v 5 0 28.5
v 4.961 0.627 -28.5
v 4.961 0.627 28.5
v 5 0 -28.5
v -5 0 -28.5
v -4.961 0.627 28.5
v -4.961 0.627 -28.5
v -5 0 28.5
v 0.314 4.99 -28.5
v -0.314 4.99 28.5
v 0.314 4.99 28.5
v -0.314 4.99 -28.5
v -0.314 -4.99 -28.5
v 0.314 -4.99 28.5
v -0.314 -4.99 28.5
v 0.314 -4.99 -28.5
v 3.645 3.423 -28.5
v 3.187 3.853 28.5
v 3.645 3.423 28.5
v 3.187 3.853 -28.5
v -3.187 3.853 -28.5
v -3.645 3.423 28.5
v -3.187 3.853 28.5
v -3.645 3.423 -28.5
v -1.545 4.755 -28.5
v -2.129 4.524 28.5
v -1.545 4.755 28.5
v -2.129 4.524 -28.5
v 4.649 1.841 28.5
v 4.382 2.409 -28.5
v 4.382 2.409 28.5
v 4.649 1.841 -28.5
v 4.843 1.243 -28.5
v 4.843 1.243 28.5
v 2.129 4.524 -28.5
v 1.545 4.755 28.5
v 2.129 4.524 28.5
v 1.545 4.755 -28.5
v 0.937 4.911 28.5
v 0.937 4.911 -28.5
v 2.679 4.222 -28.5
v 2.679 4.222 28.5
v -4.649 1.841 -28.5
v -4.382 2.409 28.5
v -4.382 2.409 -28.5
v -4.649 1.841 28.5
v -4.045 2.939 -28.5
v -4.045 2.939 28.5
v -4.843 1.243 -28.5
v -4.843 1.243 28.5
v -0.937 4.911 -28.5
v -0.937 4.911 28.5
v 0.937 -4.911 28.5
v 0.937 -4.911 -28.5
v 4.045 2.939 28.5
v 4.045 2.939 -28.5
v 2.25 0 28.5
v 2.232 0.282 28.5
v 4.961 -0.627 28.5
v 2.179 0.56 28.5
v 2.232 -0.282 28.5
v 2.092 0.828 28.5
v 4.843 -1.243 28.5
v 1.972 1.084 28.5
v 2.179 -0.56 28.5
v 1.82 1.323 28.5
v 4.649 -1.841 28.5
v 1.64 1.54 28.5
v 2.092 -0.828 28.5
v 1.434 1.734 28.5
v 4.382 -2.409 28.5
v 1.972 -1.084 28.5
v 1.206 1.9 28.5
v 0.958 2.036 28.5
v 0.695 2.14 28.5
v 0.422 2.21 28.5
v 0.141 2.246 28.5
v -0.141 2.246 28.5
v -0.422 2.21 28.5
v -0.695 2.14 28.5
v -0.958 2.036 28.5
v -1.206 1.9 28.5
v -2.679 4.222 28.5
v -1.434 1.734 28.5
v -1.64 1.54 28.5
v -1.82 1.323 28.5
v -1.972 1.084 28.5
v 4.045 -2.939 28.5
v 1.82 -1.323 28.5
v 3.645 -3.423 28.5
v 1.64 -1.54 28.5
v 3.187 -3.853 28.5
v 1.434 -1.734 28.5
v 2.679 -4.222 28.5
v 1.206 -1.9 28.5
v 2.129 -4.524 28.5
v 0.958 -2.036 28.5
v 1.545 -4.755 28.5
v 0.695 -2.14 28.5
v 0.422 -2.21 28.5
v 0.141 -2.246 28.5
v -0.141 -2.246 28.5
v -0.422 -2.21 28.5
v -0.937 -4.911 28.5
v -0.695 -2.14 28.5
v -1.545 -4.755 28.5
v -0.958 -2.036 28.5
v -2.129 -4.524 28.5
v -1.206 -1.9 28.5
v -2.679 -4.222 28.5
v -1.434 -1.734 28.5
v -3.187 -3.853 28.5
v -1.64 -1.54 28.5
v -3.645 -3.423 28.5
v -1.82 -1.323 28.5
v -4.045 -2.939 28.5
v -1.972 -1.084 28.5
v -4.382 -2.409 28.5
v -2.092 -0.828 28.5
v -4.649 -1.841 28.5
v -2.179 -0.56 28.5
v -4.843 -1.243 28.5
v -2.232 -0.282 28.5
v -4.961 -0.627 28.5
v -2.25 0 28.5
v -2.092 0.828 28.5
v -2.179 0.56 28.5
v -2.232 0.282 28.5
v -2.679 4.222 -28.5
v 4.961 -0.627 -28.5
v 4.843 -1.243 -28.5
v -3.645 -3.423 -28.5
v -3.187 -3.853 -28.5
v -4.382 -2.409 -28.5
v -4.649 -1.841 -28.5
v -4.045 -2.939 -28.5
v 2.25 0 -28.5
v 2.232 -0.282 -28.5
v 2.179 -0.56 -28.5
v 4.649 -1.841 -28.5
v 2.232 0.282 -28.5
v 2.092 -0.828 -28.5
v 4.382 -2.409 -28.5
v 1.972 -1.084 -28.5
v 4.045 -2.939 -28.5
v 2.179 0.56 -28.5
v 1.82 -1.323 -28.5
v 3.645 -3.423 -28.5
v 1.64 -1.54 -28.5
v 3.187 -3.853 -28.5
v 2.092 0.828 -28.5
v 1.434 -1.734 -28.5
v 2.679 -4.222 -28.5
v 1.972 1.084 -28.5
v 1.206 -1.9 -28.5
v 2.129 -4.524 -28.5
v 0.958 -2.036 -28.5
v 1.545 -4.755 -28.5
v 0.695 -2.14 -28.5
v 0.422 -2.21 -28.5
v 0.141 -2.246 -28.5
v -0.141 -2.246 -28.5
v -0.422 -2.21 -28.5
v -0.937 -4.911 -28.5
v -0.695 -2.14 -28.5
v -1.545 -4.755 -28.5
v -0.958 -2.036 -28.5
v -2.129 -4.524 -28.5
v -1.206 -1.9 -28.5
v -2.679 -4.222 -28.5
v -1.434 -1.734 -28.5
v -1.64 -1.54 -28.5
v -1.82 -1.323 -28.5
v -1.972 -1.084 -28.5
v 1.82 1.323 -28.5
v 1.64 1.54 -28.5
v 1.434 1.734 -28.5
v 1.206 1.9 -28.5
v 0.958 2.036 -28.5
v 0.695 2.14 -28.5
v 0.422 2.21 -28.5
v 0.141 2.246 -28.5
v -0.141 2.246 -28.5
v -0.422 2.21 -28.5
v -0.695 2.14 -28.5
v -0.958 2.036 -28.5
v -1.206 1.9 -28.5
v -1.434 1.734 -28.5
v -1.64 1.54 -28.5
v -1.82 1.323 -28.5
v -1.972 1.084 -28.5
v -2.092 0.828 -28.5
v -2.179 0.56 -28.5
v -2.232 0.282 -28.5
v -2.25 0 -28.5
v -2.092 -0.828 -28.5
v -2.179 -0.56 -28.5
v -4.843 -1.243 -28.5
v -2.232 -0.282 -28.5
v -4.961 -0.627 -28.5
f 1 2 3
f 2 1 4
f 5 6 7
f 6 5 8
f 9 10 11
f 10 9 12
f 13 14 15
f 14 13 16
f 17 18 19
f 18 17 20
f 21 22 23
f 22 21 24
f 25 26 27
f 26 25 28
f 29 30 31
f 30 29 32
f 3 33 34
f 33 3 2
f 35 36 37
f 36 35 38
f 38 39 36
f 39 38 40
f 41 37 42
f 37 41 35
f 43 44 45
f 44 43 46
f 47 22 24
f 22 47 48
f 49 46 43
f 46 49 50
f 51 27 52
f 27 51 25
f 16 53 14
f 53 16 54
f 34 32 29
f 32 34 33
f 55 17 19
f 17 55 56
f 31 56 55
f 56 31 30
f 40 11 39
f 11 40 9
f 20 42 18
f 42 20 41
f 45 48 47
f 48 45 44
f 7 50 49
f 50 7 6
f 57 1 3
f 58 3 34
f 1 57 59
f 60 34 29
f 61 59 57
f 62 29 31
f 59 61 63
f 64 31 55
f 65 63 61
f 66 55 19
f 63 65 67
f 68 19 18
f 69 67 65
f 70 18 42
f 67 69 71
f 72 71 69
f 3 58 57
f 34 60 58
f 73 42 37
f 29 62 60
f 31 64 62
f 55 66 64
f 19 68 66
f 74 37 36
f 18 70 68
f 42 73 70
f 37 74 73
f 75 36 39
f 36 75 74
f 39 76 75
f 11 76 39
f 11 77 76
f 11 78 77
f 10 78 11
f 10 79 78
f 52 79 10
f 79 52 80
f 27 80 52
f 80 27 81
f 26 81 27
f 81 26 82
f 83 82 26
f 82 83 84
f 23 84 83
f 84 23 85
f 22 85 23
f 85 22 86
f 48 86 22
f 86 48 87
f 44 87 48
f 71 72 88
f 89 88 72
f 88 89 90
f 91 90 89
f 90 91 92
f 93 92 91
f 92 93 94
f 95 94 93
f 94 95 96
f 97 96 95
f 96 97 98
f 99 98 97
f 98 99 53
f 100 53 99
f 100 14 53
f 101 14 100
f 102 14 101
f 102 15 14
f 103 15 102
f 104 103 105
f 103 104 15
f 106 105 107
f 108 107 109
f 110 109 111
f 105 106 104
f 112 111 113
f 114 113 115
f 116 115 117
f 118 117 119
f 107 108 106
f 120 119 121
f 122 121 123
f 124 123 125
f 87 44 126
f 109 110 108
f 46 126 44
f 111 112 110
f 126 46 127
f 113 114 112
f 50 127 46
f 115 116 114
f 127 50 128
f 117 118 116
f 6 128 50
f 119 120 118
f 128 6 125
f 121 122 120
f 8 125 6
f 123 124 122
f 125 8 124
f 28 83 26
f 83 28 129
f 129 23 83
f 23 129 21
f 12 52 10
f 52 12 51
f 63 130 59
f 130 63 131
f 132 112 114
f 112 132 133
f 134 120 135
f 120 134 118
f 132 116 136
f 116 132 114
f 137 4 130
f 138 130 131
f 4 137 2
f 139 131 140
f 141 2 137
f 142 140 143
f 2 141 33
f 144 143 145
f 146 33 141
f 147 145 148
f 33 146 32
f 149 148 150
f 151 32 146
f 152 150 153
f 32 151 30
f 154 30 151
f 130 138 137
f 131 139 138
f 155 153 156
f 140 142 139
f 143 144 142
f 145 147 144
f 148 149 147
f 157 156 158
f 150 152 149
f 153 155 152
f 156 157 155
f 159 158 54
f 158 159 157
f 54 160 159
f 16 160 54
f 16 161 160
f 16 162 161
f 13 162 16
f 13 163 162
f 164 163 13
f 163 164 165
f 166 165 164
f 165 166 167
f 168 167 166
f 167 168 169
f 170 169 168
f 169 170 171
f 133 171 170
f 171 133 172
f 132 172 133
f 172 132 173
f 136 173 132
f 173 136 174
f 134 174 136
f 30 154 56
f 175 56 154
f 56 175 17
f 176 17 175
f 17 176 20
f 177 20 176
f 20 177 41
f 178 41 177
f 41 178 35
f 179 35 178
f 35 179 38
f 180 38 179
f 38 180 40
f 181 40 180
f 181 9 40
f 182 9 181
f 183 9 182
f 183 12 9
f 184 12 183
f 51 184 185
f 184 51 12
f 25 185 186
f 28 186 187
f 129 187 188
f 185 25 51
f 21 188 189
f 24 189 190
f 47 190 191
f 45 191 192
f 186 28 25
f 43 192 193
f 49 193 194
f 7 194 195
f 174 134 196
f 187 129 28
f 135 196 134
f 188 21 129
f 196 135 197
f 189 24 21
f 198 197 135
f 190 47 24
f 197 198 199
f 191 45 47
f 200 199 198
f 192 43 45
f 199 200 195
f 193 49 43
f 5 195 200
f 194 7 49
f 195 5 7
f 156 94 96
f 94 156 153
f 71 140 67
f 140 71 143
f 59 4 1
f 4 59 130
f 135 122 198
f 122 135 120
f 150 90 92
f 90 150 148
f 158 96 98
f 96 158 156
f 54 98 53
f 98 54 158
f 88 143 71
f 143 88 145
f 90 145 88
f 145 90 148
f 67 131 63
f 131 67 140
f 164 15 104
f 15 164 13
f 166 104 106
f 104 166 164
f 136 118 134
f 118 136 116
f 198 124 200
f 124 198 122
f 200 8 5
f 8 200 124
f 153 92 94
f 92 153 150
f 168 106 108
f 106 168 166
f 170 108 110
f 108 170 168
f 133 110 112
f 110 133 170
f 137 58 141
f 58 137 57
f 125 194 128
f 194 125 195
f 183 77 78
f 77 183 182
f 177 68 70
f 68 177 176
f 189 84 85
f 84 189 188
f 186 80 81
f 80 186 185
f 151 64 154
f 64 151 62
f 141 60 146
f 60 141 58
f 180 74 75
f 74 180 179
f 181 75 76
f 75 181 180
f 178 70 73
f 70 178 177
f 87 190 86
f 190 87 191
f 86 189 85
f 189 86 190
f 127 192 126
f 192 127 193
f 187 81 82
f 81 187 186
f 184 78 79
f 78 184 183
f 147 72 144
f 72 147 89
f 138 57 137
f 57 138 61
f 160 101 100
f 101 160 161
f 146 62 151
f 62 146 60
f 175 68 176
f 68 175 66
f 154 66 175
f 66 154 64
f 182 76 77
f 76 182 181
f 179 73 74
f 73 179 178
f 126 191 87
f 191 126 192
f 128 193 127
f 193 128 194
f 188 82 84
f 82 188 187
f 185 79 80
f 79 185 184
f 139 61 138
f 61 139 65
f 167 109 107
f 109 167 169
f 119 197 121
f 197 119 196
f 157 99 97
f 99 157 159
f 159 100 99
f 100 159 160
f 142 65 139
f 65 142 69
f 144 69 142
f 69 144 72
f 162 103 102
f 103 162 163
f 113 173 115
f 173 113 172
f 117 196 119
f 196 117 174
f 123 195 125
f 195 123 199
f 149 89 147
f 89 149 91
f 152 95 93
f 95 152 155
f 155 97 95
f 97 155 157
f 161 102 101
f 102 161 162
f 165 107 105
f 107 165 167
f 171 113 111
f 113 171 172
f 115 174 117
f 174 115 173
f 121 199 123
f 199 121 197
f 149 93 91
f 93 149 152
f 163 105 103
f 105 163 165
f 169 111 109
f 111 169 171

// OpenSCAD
$fn = 50;


difference() {
	union() {
		translate(v = [0, 0, -28.5000000000]) {
			cylinder(h = 57, r = 5.0000000000);
		}
	}
	union() {
		translate(v = [0, 0, -100.0000000000]) {
			cylinder(h = 200, r = 2.2500000000);
		}
	}
}
